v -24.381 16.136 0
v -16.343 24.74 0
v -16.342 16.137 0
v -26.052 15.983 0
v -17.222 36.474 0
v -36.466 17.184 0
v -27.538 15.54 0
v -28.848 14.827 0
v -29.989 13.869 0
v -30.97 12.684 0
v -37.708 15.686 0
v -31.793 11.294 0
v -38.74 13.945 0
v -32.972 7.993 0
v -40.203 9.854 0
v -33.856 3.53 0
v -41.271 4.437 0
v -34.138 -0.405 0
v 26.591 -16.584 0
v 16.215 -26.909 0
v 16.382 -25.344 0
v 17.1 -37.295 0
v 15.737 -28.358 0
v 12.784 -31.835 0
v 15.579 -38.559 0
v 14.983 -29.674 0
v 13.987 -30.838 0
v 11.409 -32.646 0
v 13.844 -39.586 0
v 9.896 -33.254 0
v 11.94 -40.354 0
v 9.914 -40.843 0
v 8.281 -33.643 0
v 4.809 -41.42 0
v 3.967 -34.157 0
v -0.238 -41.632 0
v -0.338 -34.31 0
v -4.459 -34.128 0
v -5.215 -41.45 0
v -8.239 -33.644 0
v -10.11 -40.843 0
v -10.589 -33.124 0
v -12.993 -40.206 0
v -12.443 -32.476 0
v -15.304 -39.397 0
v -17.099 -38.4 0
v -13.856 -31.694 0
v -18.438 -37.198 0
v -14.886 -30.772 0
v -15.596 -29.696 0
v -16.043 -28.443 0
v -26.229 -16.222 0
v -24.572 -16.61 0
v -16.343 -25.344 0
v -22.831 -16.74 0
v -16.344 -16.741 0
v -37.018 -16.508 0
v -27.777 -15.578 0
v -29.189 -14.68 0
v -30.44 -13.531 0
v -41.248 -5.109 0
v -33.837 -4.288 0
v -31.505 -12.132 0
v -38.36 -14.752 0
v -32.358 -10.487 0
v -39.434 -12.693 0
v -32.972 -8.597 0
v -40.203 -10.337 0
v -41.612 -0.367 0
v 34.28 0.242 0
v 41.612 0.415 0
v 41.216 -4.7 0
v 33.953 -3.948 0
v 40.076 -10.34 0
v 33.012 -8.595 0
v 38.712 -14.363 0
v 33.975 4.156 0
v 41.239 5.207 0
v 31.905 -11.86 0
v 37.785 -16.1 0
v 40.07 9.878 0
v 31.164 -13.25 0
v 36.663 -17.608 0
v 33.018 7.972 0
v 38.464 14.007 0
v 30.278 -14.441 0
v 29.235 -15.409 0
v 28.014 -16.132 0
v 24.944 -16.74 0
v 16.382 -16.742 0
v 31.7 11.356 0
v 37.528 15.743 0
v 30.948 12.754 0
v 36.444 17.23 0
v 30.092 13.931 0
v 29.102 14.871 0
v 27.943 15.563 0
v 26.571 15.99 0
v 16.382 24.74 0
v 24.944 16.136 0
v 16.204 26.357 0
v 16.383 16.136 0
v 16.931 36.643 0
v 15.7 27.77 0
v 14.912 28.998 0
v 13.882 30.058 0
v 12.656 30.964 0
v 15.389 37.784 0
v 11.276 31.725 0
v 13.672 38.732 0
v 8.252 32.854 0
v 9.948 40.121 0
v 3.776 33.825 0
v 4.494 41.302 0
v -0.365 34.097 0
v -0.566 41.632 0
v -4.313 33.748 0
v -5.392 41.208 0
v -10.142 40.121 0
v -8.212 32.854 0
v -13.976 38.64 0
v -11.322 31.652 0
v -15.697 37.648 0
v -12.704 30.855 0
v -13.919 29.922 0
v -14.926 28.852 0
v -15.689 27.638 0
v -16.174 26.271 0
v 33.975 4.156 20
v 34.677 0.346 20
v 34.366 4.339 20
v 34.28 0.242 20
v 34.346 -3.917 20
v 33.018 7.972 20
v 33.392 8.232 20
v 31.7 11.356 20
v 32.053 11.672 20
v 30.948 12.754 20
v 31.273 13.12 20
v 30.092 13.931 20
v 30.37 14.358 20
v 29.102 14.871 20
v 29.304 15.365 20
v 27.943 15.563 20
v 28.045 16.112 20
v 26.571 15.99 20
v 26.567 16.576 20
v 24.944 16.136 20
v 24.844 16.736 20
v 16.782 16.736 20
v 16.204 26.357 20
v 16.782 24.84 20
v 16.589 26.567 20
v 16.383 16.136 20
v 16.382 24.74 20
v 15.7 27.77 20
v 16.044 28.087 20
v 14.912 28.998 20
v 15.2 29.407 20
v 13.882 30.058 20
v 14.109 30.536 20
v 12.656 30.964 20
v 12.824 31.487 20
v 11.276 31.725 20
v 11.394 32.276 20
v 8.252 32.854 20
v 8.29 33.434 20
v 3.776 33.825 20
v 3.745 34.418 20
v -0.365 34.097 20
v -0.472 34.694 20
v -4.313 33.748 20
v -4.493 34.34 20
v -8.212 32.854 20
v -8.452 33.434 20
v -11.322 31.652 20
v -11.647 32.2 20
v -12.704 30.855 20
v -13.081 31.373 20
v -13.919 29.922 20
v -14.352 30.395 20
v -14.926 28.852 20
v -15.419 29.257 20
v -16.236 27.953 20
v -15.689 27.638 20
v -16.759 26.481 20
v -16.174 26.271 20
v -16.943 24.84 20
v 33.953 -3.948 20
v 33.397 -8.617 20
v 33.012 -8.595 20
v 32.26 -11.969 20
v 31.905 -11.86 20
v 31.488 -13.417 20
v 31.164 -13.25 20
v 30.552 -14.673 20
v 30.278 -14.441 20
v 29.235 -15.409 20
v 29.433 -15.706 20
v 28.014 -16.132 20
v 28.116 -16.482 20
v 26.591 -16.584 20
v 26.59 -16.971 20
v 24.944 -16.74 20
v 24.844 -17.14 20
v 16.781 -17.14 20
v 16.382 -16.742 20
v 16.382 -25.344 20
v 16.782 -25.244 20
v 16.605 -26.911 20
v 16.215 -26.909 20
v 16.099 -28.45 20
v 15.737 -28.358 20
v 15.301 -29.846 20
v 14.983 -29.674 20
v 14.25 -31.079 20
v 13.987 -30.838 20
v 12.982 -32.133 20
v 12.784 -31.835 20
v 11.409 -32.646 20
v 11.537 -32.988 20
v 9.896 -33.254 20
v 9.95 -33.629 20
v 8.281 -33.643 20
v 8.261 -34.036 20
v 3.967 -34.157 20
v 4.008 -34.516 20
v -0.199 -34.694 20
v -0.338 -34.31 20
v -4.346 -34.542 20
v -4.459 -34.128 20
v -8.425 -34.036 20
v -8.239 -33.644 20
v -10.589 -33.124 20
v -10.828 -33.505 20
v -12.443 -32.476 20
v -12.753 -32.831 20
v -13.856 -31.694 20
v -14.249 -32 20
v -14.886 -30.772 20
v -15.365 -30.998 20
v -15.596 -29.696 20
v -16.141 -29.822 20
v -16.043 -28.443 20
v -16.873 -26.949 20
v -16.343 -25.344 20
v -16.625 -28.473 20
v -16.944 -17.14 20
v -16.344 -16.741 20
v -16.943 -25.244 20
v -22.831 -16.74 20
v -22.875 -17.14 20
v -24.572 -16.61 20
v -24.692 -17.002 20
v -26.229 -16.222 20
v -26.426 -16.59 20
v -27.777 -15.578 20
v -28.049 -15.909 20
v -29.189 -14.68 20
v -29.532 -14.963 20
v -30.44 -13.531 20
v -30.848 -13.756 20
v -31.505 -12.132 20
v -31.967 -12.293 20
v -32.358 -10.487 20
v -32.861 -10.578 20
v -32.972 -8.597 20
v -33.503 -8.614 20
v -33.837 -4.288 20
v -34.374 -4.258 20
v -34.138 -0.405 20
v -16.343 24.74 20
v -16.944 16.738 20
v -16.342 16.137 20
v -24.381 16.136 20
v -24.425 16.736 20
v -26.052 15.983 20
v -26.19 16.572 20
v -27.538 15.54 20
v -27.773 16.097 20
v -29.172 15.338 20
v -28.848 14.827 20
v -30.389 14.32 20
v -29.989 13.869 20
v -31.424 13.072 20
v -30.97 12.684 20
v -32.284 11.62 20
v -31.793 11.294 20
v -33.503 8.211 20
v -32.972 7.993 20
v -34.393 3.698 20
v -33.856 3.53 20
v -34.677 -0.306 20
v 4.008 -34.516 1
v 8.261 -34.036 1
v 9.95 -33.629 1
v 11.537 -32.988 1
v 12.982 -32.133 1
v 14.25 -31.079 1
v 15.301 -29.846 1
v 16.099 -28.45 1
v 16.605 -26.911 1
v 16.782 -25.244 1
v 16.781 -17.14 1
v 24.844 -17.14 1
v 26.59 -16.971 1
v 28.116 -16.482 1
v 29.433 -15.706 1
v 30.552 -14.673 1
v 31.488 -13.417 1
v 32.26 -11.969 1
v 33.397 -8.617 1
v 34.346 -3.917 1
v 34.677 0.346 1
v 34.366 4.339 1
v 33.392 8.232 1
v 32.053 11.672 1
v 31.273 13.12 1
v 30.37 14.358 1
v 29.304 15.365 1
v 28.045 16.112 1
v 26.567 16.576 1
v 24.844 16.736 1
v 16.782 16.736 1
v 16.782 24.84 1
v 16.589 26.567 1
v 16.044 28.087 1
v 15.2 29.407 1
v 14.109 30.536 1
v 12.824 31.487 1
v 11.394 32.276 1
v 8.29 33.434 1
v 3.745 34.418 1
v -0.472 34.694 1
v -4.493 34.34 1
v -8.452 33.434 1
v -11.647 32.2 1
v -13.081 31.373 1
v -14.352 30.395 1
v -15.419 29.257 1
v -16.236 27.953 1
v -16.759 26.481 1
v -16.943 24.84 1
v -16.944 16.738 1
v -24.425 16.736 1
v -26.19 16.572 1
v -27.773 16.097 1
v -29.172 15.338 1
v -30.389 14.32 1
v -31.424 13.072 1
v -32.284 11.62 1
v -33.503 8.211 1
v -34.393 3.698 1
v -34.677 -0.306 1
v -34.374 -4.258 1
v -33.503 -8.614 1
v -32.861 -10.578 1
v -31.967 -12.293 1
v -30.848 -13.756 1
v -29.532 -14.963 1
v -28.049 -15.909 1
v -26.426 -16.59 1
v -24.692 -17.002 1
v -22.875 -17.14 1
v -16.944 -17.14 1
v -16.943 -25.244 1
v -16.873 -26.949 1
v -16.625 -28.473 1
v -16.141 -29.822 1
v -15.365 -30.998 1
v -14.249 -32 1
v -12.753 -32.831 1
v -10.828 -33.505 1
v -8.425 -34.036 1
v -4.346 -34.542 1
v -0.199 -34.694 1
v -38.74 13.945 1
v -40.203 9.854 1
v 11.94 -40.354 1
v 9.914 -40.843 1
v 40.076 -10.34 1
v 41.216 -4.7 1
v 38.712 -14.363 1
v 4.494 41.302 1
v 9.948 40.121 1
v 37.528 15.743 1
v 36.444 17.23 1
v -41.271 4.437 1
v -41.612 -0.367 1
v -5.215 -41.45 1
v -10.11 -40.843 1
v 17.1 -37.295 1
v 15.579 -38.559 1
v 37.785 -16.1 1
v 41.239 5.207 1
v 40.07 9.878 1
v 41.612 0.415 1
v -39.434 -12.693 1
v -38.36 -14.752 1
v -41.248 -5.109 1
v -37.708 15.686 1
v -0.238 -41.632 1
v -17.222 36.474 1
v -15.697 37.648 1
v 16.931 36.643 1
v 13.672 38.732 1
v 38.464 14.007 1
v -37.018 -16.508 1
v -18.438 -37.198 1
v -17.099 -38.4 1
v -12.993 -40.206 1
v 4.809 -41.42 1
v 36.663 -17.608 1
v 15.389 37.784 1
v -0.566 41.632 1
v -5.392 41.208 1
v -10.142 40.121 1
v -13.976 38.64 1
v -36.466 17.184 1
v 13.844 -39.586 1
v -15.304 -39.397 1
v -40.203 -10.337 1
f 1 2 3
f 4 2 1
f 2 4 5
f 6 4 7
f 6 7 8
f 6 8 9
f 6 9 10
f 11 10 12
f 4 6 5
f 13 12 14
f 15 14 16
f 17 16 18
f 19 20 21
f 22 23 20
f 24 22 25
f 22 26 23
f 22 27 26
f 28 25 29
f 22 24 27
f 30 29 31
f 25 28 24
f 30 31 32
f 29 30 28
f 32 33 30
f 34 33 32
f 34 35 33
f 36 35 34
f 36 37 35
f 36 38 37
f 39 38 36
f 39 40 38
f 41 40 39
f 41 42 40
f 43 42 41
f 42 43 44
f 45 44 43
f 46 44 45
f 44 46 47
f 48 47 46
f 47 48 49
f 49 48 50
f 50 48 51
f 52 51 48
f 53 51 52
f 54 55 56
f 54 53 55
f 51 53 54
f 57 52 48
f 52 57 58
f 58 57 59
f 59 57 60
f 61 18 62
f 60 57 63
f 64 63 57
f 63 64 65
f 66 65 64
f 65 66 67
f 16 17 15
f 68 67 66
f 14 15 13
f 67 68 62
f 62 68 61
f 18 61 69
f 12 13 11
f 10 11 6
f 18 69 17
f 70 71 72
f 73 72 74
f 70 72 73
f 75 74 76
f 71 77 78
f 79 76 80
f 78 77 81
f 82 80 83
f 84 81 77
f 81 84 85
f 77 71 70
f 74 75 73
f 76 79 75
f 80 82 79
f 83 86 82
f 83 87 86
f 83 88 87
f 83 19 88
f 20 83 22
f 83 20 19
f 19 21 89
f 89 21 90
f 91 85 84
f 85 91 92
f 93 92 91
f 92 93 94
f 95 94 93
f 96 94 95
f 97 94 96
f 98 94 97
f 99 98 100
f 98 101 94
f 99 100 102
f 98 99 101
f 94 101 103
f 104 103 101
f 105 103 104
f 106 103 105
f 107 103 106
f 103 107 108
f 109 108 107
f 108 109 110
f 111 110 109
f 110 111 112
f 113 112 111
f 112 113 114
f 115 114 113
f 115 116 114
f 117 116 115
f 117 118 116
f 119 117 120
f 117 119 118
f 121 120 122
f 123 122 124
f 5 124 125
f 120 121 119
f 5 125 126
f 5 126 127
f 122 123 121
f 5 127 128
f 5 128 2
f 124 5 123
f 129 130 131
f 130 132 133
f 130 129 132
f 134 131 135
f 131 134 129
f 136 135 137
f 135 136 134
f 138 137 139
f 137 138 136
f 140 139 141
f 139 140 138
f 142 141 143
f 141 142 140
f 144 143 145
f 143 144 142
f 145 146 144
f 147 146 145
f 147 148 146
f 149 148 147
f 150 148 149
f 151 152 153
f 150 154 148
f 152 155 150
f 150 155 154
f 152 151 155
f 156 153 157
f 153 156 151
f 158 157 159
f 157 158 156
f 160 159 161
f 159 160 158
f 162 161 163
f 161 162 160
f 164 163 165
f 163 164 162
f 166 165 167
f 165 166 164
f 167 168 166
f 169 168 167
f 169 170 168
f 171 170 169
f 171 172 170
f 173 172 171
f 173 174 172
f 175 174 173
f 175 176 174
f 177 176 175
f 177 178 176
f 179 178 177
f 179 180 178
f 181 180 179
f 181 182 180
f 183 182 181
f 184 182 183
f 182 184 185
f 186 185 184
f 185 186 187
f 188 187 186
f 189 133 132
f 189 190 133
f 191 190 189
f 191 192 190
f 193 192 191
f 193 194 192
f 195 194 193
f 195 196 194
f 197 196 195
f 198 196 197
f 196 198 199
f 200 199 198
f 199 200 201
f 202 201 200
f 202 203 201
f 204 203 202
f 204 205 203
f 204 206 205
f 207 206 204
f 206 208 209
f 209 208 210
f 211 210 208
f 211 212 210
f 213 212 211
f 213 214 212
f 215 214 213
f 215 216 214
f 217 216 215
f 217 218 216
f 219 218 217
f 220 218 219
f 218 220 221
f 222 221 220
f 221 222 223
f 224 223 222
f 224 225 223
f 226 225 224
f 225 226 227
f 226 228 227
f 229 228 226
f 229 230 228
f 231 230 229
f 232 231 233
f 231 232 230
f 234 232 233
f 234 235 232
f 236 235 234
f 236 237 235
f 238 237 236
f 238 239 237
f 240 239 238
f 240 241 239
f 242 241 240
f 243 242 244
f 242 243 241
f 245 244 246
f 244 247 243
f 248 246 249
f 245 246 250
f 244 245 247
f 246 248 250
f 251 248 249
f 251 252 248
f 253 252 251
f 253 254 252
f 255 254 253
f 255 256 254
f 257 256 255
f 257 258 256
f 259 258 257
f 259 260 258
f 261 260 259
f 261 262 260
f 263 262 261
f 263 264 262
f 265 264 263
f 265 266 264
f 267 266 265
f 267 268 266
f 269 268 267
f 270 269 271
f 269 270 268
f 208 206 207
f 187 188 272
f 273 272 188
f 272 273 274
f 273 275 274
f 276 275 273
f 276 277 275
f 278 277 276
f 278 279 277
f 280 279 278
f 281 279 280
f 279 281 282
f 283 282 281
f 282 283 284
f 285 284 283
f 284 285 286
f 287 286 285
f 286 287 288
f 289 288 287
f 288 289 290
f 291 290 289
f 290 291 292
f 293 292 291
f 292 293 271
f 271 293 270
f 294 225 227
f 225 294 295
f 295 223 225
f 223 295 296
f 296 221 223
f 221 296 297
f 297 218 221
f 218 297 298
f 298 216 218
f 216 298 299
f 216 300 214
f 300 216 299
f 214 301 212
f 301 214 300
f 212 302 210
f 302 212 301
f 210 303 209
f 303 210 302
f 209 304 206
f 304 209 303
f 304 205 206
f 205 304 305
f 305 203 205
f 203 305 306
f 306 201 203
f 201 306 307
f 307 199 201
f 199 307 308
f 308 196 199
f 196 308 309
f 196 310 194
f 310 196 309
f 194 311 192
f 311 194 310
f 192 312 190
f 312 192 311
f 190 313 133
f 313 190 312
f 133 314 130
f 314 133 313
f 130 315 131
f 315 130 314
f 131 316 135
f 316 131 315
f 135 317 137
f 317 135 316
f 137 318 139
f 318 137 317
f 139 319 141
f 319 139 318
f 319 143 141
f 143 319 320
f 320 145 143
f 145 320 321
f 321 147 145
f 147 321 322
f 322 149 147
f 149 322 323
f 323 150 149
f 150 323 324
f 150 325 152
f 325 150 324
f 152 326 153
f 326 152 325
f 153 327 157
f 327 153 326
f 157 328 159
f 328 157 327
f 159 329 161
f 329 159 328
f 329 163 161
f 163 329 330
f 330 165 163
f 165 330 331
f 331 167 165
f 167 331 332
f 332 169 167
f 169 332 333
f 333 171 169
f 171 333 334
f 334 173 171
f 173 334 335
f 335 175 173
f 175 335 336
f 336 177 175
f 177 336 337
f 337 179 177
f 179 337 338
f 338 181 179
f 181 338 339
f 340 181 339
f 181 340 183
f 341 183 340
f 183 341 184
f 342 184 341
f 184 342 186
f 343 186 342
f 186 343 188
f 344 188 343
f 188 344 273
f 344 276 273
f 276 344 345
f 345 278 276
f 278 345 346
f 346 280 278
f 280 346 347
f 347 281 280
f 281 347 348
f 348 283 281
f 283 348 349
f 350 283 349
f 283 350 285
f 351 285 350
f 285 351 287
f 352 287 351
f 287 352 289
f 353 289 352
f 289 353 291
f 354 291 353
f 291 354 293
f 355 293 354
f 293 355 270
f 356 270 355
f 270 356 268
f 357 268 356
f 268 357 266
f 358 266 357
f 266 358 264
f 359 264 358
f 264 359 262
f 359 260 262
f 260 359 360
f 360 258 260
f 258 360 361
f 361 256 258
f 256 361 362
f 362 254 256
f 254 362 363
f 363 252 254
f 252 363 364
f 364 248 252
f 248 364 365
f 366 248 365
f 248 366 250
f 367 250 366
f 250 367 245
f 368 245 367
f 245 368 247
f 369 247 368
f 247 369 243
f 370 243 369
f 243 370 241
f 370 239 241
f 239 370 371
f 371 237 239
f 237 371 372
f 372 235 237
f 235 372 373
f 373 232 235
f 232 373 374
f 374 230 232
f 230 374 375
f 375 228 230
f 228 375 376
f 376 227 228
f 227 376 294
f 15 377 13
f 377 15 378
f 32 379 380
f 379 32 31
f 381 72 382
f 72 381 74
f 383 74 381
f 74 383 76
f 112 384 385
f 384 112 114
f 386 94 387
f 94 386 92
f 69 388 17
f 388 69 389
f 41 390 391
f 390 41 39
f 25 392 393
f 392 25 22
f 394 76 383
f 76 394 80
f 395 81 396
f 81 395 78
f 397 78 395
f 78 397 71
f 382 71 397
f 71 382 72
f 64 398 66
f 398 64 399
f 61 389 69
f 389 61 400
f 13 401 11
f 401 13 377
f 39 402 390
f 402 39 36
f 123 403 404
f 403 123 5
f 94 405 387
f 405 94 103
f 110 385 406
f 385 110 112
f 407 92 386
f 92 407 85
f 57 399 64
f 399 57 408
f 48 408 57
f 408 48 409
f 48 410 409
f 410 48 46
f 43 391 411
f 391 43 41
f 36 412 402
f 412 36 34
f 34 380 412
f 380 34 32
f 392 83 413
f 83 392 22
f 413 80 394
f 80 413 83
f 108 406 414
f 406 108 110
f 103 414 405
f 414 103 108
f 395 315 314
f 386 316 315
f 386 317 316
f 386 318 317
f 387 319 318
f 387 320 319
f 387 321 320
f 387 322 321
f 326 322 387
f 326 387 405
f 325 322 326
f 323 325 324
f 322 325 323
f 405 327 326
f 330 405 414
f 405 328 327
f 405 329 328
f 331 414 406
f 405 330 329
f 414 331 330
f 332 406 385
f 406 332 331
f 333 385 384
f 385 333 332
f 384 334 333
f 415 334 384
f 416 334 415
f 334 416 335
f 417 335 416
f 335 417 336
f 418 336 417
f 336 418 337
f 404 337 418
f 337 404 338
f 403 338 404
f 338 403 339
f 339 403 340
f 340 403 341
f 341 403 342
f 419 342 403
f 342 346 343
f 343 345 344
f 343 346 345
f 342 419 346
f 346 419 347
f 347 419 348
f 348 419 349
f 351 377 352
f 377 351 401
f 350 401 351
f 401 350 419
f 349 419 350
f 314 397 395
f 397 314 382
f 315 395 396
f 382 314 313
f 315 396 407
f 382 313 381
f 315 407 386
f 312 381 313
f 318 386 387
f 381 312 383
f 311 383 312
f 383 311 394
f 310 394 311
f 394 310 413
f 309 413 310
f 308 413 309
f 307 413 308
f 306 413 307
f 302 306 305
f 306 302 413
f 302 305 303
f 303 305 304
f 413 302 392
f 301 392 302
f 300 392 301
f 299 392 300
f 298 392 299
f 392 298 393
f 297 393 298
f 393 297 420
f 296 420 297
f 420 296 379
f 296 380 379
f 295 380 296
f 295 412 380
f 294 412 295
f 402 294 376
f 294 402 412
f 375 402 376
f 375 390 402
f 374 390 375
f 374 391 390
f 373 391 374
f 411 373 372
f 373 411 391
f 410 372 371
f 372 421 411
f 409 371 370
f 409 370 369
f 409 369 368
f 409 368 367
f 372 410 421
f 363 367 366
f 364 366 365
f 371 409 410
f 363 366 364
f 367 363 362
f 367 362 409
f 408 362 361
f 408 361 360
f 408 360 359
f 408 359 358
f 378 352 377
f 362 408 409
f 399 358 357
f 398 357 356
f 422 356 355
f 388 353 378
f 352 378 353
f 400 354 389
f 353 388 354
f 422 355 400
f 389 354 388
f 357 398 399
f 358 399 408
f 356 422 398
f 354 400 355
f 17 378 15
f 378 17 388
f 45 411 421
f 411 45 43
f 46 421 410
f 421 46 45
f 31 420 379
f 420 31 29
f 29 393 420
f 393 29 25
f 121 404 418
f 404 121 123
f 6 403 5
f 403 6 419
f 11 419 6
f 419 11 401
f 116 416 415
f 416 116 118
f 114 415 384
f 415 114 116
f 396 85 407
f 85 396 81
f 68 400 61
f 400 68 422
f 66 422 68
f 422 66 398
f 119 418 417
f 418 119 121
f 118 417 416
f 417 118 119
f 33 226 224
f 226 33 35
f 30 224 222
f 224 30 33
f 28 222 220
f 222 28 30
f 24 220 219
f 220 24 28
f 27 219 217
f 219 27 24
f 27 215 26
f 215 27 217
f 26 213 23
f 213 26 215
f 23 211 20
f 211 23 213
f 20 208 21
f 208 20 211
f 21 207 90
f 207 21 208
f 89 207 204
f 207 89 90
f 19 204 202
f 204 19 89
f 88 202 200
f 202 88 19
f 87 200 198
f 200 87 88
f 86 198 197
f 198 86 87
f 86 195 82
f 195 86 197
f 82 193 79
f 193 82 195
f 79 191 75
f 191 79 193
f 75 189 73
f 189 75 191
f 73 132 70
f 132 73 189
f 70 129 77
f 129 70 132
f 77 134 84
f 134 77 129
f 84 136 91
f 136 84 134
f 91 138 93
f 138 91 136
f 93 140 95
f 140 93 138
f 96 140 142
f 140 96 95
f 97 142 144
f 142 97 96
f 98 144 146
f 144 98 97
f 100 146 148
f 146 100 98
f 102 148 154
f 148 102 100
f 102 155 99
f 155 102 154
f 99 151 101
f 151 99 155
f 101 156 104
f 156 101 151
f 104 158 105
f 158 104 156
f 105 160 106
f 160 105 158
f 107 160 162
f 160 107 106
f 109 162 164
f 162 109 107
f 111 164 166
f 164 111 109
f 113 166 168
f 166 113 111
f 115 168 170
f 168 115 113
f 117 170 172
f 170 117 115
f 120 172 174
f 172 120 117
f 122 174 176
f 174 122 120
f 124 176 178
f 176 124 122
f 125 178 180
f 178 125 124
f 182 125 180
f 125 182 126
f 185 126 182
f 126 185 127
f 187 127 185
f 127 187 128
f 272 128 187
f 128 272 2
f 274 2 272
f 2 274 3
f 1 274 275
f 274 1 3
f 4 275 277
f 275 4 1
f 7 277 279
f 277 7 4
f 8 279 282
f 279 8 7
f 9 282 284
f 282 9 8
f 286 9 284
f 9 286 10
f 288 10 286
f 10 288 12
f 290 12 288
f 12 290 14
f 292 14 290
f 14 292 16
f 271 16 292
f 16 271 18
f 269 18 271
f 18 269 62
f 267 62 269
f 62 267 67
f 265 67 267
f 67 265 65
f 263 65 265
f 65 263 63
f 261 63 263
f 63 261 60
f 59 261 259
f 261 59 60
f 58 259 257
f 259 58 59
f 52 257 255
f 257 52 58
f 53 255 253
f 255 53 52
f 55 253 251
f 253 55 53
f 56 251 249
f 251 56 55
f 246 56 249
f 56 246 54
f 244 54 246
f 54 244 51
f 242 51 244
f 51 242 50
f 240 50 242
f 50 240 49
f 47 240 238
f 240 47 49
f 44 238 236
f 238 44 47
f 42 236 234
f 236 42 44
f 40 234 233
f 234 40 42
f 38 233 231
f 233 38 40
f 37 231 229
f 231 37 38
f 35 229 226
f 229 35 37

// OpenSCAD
// file: p-all.scad
// Module names are of the form poly_<inkscape-path-id>().  As a result,
// you can associate a polygon in this OpenSCAD program with the corresponding
// SVG element in the Inkscape document by looking for the XML element with
// the attribute id="inkscape-path-id".

// fudge value is used to ensure that subtracted solids are a tad taller
// in the z dimension than the polygon being subtracted from.  This helps
// keep the resulting .stl file manifold.
fudge = 0.1;

module poly_eyes_outer(h)
{
  scale([25.4/90, -25.4/90, 1]) union()
  {
    linear_extrude(height=h)
      polygon([[32.837080,79.852283],[28.248753,80.782448],[24.490404,83.318709],[21.950510,87.079716],[21.017550,91.684120],[21.949887,96.307622],[24.488742,100.091263],[28.246884,102.646430],[32.837080,103.584510],[37.435383,102.646137],[41.191990,100.090483],[43.725587,96.306745],[44.654860,91.684120],[43.724971,87.080598],[41.190340,83.319492],[37.433524,80.782742],[32.837080,79.852283]]);
    linear_extrude(height=h)
      polygon([[-33.406960,-105.014906],[-38.005265,-104.076535],[-41.761873,-101.520886],[-44.295467,-97.737148],[-45.224730,-93.114516],[-44.294839,-88.510989],[-41.760208,-84.749883],[-38.003394,-82.213133],[-33.406960,-81.282676],[-28.818917,-82.212840],[-25.061171,-84.749099],[-22.521878,-88.510107],[-21.589190,-93.114516],[-22.521255,-97.738022],[-25.059510,-101.521662],[-28.817048,-104.076826],[-33.406960,-105.014906]]);
  }
}

module poly_eyes_inner(h)
{
  scale([25.4/90, -25.4/90, 1]) union()
  {
    linear_extrude(height=h)
      polygon([[32.837080,81.606580],[28.923757,82.396157],[25.723269,84.551912],[23.562939,87.754387],[22.770090,91.684120],[23.563564,95.634372],[25.724937,98.859322],[28.925634,101.033194],[32.837080,101.830213],[36.758079,101.033487],[39.957076,98.860101],[42.112383,95.635249],[42.902310,91.684120],[42.113009,87.753506],[39.958737,84.551129],[36.759945,82.395863],[32.837080,81.606580]]);
    linear_extrude(height=h)
      polygon([[-33.406960,-103.260606],[-37.327960,-102.463882],[-40.526960,-100.290501],[-42.682267,-97.065650],[-43.472190,-93.114516],[-42.682887,-89.183893],[-40.528614,-85.981517],[-37.329821,-83.826255],[-33.406960,-83.036976],[-29.493925,-83.826548],[-26.294040,-85.982297],[-24.134308,-89.184770],[-23.341730,-93.114516],[-24.134931,-97.064776],[-26.295701,-100.289724],[-29.495794,-102.463590],[-33.406960,-103.260606]]);
  }
}

module poly_py_outer(h)
{
  scale([25.4/90, -25.4/90, 1]) union()
  {
    linear_extrude(height=h)
      polygon([[88.029070,59.302144],[94.135396,58.735301],[99.372450,57.088412],[103.832834,54.441942],[107.609150,50.876354],[110.811086,46.486298],[113.574748,41.358773],[118.316180,29.167374],[121.768930,15.374916],[122.870240,1.224962],[121.699395,-13.878591],[118.335680,-30.531846],[114.308554,-42.410872],[111.570559,-47.539127],[108.255610,-51.990826],[104.290881,-55.651510],[99.624385,-58.401669],[94.216859,-60.131954],
      
      [88.029040,-60.733016],[59.461220,-60.733016],
      [59.464220,-89.447406],[58.836541,-95.352555],
      
      [57.042611,-100.808782],[54.216092,-105.753247],[50.490645,-110.123111],[45.999932,-113.855532],[40.877614,-116.887672],[35.257353,-119.156689],[29.272810,-120.599746],[14.199821,-122.302284],[-0.703595,-122.930431],[-15.400071,-122.393235],[-29.852240,-120.599746],[-38.366197,-118.717515],[-45.188106,-116.328878],[-50.489542,-113.384758],[-54.442080,-109.836076],[-57.192198,-105.668070],[-58.906595,-100.889654],[-59.787172,-95.487281],[-60.035830,-89.447406],[-60.036600,-60.732246],[-81.053710,-60.732566],[-87.491355,-60.242922],[-93.635805,-58.783917],[-99.386427,-56.370736],[-104.642587,-53.018561],[-109.303654,-48.742575],[-113.268993,-43.557961],[-116.437973,-37.479904],[-118.709960,-30.523586],[-121.796122,-15.085634],[-122.870240,-1.084613],[-121.864218,13.101707],[-118.709960,29.095554],[-114.390573,41.174978],[-111.343859,46.316592],[-107.676750,50.740094],[-103.366956,54.347307],[-98.407909,57.037989],[-92.800567,58.720349],[-86.545890,59.302594],[-60.037620,59.308594],[-60.035620,88.017484],[-59.382566,93.830715],[-57.529005,99.045089],[-54.633342,103.666071],[-50.853980,107.699124],[-46.349752,111.164080],[-41.268928,114.095557],[-29.947730,118.468654],[-15.920879,121.676301],[-1.670703,122.930431],[13.271038,121.953672],[29.372580,118.468654],[40.371307,114.365304],[45.438972,111.567367],[49.993680,108.199124],[53.859517,104.198499],[56.849873,99.520581],[58.779806,94.136525],[59.464380,88.017484],[59.465380,59.300404]]);
  }
}

module poly_py_inner(h)
{
  scale([25.4/90, -25.4/90, 1]) union()
  {
    linear_extrude(height=h)
      polygon([[57.693180,88.016984],[57.063194,93.745777],[55.275099,98.753028],[52.481686,103.102707],[48.835750,106.858784],[44.488469,110.069034],[39.601826,112.764379],[28.886540,116.765034],[13.026358,120.206010],[-1.646641,121.171084],[-15.637525,119.933633],[-29.451360,116.767034],[-29.453360,116.767034],[-40.470948,112.508032],[-45.370206,109.683523],[-49.672110,106.378364],[-53.239896,102.585928],[-55.946413,98.285177],[-57.663727,93.440687],[-58.263910,88.017034],[-58.258910,57.533364],[-86.744360,57.530364],[-92.665692,56.988551],[-97.930411,55.415932],[-102.569880,52.891739],[-106.615460,49.495204],[-110.090941,45.298024],[-113.005185,40.373984],[-117.185770,28.674894],[-120.317545,12.861613],[-121.316860,-1.080163],[-120.250630,-14.839723],[-117.185770,-30.106356],[-117.185770,-30.108356],[-115.007852,-36.804983],[-111.987025,-42.634909],[-108.214208,-47.590064],[-103.780318,-51.662378],[-98.776270,-54.843781],[-93.292983,-57.126204],[-87.421374,-58.501575],[-81.252360,-58.961826],[-58.267010,-58.964826],[-58.264010,-89.448546],[-57.199435,-100.427192],[-55.613968,-104.867178],[-53.099940,-108.680976],[-49.451894,-111.946216],[-44.444003,-114.717063],[-37.875897,-117.013322],[-29.547210,-118.854796],[-16.155366,-120.570741],[-1.551110,-121.218086],[-1.550930,-121.218086],[13.701945,-120.674027],[28.986170,-118.852846],[34.710494,-117.475955],[40.070399,-115.319799],[44.942959,-112.445633],[49.205249,-108.914711],[52.734344,-104.788286],[55.407320,-100.127614],[57.101250,-94.993949],[57.693210,-89.448546],[57.693210,-58.967266],[88.029140,-58.962266],[93.866470,-58.408166],[98.907156,-56.805631],[103.234422,-54.244303],[106.931490,-50.813826],[110.068443,-46.594116],[112.694279,-41.670363],[116.618990,-30.100936],[119.952386,-13.636407],[121.112030,1.212748],[120.030029,15.080354],[116.638490,28.600234],[116.638490,28.602234],[111.968341,40.592743],[109.302153,45.546876],[106.269350,49.715514],[102.764667,53.047606],[98.656085,55.499258],[93.794076,57.012651],[88.029110,57.529964],[57.695130,57.529744]]);
  }
}
// main file
include <p-all.scad>;    // poly_path4442

scale([1, -1, 1]) union() {
    difference() {
        union() {
            poly_py_outer(20);
            scale([1.2, 1.2, 1]) hull() {
                poly_py_outer(1);
            }
        }
        translate([0.1,0.1,-1]) {
            poly_py_inner(40);
        }
    }
}
